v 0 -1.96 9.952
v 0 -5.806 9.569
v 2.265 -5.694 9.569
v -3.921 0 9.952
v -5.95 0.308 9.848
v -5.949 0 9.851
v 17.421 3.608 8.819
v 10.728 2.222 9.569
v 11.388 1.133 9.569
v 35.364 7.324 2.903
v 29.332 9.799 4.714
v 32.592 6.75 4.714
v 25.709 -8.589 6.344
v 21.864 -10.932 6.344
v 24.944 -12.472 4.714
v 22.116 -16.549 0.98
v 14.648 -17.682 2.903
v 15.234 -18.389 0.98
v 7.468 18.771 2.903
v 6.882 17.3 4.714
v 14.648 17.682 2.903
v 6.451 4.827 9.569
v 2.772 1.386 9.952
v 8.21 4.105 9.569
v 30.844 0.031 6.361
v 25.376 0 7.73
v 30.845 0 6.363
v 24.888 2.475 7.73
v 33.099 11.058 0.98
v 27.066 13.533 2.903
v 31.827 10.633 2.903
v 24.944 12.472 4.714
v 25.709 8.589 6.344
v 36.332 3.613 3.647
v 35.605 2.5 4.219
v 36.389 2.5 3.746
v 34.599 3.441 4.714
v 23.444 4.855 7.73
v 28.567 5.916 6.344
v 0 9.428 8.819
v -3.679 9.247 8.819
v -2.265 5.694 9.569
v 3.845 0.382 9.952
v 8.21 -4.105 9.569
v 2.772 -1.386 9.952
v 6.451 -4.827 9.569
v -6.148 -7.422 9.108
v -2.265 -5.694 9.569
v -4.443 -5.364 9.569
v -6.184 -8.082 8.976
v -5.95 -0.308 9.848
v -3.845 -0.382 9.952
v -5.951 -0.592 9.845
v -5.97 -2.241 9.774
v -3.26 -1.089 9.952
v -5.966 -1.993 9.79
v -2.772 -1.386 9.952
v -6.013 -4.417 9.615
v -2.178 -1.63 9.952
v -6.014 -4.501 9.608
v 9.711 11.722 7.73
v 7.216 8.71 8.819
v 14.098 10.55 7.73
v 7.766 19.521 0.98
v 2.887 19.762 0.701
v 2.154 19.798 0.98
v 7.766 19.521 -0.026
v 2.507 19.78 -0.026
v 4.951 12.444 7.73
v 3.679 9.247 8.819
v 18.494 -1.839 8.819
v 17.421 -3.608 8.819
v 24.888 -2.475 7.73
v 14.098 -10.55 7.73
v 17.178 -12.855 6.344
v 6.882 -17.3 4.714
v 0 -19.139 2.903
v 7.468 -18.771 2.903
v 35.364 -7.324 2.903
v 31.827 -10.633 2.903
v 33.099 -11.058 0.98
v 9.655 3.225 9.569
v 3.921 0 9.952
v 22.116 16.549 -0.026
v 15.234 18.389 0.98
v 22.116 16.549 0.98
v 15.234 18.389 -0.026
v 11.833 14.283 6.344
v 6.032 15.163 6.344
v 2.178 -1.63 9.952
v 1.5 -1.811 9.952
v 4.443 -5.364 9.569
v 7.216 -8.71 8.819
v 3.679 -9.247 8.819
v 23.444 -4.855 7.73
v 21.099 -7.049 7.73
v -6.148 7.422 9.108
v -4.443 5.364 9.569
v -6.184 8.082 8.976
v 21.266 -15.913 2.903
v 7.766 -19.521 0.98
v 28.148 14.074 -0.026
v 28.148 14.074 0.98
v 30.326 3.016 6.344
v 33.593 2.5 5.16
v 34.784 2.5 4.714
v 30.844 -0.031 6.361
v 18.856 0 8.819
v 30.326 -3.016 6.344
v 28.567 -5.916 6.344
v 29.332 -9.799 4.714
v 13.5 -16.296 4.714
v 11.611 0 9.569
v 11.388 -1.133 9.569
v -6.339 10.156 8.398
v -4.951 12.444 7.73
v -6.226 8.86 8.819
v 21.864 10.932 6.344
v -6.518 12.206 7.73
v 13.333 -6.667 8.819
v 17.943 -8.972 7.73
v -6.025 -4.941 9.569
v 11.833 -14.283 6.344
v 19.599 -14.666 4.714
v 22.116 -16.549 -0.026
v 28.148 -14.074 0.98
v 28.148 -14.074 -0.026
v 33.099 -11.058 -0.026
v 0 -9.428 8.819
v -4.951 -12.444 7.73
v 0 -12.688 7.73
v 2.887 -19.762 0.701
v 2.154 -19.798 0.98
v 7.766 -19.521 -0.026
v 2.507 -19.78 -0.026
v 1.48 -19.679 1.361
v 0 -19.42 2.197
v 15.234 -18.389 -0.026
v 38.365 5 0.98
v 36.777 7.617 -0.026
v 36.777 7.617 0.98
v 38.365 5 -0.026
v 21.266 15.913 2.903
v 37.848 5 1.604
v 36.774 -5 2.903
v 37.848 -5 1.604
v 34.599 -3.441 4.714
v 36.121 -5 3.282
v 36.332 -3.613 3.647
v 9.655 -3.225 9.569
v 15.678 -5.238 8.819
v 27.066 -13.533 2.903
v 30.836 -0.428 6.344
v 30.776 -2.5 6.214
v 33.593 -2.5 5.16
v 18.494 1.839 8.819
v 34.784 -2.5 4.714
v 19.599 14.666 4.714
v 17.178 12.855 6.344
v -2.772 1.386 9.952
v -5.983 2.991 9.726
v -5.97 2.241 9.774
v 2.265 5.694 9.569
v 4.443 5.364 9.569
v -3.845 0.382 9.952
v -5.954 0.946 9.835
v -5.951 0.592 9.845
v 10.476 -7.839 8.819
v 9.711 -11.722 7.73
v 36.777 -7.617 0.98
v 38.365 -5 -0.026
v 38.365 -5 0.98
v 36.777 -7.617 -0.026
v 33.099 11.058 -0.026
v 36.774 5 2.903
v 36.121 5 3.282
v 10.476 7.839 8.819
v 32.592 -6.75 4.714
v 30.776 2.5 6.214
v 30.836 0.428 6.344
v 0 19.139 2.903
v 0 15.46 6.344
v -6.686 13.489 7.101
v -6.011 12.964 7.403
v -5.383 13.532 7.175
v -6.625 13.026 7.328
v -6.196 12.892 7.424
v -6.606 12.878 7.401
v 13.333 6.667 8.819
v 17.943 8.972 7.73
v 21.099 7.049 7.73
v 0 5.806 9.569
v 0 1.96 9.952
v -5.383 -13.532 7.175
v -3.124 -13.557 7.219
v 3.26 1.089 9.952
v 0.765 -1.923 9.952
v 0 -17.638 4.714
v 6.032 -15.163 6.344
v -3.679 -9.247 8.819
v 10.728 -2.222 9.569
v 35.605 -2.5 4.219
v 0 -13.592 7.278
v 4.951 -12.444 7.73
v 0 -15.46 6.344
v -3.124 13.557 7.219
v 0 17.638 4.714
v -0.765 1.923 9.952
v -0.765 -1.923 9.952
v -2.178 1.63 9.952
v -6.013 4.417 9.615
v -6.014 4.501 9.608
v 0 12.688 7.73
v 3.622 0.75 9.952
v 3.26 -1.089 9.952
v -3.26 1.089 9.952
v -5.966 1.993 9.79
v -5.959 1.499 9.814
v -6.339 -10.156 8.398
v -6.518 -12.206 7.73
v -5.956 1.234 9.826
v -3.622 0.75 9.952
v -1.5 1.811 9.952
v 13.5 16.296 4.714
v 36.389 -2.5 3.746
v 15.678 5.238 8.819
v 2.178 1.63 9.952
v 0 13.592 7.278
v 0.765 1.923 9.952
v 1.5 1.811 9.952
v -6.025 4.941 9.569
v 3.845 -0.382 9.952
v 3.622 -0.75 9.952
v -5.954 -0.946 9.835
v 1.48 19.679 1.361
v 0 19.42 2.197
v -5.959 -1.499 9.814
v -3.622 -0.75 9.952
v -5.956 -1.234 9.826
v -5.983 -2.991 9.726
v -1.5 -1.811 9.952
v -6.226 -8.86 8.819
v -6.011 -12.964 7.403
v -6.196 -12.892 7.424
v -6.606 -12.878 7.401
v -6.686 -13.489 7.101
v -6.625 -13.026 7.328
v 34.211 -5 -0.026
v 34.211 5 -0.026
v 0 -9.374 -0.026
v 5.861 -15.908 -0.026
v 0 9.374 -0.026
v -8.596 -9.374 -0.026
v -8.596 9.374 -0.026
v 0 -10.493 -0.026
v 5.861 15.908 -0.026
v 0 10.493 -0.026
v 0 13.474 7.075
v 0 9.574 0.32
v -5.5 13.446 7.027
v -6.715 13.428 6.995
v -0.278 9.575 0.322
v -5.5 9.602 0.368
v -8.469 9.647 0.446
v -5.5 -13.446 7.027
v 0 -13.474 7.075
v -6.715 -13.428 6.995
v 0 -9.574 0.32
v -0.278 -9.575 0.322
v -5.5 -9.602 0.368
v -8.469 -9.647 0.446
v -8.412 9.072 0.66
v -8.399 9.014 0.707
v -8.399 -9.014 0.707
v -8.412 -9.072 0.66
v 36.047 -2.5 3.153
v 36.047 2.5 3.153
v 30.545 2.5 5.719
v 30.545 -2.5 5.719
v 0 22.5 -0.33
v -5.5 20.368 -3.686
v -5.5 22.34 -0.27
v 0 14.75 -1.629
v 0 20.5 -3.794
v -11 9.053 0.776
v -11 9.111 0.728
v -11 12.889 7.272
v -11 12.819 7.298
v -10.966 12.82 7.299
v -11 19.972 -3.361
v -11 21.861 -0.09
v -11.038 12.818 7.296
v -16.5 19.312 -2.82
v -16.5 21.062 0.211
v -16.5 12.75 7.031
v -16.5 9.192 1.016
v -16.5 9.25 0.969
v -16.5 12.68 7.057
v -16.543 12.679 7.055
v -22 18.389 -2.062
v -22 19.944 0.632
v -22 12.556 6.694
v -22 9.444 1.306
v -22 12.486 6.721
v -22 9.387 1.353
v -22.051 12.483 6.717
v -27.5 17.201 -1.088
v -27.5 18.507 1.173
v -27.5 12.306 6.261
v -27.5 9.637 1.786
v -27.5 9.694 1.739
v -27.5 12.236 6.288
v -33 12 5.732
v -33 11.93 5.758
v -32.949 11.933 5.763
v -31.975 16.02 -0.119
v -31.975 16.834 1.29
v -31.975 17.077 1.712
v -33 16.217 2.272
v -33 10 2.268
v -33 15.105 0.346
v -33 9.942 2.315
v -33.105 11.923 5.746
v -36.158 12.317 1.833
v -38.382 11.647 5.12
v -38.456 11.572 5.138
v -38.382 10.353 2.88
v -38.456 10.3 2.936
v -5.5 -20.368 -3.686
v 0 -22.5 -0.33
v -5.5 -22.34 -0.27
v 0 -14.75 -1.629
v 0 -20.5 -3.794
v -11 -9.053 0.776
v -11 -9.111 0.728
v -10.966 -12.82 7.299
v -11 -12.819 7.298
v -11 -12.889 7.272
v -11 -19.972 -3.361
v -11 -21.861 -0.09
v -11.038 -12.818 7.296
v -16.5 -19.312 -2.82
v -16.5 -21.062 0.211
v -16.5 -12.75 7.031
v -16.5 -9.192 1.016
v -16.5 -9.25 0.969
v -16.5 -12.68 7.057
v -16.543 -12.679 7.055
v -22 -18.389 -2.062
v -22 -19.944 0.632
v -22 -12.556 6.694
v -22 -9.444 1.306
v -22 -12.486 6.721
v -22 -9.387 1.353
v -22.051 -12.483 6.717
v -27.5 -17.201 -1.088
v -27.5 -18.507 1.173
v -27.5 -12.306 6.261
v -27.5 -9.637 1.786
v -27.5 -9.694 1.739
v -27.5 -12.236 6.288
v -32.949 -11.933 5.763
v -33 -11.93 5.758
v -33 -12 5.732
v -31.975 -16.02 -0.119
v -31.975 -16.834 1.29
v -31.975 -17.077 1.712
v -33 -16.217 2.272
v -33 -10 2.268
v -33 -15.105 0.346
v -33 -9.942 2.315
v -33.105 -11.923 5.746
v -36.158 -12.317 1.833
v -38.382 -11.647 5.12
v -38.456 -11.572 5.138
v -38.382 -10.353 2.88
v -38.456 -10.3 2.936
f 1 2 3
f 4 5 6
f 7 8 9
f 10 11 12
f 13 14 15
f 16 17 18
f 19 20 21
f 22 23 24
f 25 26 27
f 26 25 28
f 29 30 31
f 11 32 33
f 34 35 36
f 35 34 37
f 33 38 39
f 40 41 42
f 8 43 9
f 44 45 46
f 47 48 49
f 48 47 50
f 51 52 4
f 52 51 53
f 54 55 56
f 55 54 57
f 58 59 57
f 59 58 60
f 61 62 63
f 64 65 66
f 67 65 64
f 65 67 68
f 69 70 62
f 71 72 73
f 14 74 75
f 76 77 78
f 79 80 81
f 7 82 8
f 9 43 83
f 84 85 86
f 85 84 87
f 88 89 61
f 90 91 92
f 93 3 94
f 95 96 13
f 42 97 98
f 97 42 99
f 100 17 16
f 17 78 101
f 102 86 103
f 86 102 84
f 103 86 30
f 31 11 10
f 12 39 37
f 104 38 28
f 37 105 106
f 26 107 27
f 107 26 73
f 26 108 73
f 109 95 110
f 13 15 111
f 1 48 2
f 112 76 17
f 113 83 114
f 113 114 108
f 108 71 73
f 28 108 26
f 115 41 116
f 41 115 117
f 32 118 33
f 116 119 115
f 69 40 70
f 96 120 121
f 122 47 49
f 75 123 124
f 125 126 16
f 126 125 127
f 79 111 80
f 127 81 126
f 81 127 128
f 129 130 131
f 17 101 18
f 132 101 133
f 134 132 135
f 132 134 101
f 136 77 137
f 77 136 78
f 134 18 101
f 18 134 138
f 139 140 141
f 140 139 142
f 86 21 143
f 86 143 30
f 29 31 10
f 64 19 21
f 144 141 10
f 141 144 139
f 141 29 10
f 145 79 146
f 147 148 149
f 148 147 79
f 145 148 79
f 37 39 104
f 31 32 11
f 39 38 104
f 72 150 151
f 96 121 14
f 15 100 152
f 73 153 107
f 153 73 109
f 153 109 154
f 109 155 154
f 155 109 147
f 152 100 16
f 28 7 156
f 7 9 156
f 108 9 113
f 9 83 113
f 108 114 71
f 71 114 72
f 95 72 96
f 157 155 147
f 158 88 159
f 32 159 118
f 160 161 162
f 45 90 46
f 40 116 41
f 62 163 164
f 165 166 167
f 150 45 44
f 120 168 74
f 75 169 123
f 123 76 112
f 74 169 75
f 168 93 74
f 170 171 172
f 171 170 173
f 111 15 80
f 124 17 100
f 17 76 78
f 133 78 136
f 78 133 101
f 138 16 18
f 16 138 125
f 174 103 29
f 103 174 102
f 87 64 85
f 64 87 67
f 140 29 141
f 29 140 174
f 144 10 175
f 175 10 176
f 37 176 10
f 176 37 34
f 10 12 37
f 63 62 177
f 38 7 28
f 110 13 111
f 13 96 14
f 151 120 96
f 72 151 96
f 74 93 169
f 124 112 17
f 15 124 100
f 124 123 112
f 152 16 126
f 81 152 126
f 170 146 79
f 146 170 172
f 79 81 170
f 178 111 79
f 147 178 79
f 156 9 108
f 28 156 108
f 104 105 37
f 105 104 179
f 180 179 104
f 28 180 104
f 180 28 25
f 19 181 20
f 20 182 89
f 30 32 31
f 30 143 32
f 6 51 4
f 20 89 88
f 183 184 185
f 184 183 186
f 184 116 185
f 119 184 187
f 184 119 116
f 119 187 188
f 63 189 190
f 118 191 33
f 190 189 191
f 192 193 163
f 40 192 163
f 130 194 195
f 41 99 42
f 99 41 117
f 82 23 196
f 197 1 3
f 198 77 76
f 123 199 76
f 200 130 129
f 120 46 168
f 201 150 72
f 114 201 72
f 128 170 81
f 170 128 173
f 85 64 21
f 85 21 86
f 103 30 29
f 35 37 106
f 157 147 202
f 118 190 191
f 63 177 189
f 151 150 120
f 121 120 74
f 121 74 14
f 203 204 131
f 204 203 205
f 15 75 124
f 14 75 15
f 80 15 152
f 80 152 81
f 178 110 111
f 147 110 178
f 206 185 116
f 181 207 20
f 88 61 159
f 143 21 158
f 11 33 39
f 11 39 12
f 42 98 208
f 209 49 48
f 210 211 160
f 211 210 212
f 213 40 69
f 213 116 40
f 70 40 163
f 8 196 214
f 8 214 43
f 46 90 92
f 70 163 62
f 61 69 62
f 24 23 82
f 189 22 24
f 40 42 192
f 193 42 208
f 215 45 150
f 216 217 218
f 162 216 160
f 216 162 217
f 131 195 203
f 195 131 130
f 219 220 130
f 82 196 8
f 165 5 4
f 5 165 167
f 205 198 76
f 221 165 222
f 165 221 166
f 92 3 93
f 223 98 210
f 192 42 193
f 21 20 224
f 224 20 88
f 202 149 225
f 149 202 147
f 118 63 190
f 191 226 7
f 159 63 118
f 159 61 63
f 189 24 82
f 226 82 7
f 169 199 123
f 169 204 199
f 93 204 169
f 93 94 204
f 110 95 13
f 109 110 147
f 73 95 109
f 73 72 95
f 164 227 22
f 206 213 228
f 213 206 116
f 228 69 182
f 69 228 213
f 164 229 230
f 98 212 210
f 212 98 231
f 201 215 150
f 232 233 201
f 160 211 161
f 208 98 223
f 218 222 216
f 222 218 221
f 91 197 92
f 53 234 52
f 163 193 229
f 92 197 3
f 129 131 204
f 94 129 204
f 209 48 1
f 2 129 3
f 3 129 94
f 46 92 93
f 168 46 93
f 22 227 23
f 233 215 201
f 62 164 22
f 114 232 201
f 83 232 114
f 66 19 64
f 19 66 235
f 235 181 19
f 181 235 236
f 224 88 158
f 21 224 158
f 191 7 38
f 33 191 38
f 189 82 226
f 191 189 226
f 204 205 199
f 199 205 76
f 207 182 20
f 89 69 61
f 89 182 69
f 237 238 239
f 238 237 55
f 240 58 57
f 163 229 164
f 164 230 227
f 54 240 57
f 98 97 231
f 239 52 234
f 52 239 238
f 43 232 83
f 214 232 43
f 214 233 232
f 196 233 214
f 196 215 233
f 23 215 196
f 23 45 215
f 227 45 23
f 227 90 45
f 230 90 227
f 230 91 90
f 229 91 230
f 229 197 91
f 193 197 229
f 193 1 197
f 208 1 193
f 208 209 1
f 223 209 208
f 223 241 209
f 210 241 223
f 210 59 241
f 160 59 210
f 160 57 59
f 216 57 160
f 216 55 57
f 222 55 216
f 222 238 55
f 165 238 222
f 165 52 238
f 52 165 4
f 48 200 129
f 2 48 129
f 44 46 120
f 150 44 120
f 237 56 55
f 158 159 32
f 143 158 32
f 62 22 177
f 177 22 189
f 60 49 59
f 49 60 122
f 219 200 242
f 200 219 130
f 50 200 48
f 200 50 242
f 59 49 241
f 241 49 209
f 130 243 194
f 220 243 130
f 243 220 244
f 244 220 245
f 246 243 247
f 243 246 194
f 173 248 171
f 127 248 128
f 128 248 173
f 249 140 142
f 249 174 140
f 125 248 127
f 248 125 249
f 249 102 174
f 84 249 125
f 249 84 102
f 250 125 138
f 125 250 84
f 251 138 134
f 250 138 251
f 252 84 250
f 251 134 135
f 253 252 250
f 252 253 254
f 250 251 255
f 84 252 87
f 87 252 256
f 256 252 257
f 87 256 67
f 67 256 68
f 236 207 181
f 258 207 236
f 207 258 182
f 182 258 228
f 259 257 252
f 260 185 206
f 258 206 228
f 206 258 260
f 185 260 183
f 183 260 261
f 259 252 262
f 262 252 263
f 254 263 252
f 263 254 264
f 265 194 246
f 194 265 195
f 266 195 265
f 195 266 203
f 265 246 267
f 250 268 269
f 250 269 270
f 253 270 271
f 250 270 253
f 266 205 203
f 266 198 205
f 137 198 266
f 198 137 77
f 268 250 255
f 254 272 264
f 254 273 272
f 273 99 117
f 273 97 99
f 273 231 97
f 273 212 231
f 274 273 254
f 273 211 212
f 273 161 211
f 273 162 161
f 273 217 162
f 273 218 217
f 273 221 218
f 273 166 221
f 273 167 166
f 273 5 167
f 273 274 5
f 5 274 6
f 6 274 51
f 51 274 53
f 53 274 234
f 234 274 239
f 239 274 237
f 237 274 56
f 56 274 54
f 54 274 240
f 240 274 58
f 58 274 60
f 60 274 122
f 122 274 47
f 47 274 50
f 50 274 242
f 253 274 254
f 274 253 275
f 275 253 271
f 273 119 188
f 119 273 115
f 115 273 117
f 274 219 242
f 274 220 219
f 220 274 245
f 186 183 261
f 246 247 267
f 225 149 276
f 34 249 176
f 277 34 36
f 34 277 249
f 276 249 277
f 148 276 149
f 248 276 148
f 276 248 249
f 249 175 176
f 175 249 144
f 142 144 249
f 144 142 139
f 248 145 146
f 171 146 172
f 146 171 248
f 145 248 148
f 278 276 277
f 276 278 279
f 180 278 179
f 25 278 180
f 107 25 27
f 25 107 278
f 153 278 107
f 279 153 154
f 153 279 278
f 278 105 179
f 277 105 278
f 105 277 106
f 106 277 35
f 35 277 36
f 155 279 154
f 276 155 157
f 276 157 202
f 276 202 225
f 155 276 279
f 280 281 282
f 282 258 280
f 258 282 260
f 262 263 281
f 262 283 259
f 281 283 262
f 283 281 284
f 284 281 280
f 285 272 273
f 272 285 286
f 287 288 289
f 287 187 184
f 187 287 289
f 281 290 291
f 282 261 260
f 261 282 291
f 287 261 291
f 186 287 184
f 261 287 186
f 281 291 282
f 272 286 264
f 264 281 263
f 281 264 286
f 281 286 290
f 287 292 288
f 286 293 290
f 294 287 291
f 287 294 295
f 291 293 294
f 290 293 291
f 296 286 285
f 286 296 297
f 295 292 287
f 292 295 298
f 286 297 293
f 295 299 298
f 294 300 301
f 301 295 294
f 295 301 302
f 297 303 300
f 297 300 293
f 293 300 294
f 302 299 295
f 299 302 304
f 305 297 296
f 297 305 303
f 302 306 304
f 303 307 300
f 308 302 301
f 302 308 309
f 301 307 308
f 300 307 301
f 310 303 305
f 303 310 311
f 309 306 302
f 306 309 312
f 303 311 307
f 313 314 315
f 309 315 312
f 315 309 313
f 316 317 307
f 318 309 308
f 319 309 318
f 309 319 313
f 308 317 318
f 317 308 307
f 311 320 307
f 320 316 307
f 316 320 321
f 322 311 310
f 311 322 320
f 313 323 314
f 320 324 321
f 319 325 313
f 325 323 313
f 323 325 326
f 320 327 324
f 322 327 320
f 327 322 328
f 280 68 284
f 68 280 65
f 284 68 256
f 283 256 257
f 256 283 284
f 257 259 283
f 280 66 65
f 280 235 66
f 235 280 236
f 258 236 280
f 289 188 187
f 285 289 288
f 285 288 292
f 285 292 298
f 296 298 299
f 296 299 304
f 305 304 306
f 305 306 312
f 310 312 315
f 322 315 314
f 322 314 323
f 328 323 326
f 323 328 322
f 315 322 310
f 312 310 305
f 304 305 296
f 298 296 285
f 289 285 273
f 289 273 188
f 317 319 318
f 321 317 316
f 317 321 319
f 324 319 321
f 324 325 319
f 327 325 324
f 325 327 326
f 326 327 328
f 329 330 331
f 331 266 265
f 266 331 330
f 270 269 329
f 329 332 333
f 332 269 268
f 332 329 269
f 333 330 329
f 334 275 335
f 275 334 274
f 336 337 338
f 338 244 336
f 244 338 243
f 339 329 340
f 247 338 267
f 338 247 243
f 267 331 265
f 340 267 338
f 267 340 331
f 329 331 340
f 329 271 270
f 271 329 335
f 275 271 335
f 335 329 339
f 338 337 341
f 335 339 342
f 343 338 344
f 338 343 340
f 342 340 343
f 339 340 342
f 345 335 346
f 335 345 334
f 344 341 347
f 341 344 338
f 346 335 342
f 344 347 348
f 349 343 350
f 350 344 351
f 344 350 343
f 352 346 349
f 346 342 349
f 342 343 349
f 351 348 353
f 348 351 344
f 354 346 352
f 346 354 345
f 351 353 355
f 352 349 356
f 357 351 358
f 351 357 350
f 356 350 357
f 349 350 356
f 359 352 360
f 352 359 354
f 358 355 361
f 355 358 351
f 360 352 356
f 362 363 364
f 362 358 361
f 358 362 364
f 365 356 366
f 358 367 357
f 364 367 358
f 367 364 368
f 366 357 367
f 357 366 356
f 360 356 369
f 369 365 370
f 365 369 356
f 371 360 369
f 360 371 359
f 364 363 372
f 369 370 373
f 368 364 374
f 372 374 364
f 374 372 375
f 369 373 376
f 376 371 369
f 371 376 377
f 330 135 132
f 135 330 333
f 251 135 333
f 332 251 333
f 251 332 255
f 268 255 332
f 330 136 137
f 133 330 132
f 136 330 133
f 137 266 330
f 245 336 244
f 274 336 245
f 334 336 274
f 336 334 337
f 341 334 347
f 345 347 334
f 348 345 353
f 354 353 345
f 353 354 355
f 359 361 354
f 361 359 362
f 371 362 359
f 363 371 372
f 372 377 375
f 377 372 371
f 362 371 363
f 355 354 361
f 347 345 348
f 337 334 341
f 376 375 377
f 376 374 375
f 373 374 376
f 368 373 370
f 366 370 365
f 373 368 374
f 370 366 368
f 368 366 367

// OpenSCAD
// file: icp.scad
use <../lib/util.scad>;

module icp_saucer_large() {
    difference() {
        util_saucer(80,40,10);

        translate([-50,0,0])
            rotate([0,15,0])
                cube(80,center=true);

        util_mirrored([0,1,0])
            translate([-40,55,-1])
                rotate([-30,0,0])
                    cube(80,center=true);
            
        translate([40,0,0])
            rotate([0,30,0])
                cube(10,center=true);

        translate([35,0,6.4])
            rotate([0,-65,0])
                cube([5,5,7.5],center=true);

    }
}

module tactical_shuttle() {
    difference() {
        util_saucer(9,9,2.25);

        translate([3,0,2])
            rotate([0,-66,0])
                cube([1.5,1.5,3],center=true);
    }

    translate([-3.5,0,1])
        scale([1,1,.5])
            rotate([90,0,0])
                cylinder(5,2,2,$fn=6,center=true);

    util_mirrored([0,1,0])
        translate([-4,1.5,1])
            rotate([90,0,0])
                util_nacelle(7.5,1,4,curved=true,up=false);
};


module runabout_old() {
    difference() {
        util_saucer(18,15,3);

        translate([6,0,3.3])
            rotate([0,-72,0])
                cube([3,3,5],center=true);
    }

    translate([-7.5,0,0])
        scale([1,1,.4])
            rotate([90,0,0])
                cylinder(9,4,4,$fn=6,center=true);

    translate([-7.5,0,1])
        mirror([0,0,1])
            util_nacelle_bar(15,2.5,2.5,.5);

    util_mirrored([0,1,0])
        translate([-3,6.5,-2])
            scale([1,1,.5])
                union() {
                    rotate([0,90,0])
                        cylinder(14,1.5,1.5,center=true,$fn=16);

                    util_mirrored([1,0,0])
                        translate([7,0,0])
                            sphere(1.5,$fn=16);
                }
}

module yacht() {
    difference() {
        util_saucer(27,27,3.5);

        translate([10,0,3])
            rotate([0,-75,0])
                cube([3,3,5],center=true);
    }

    translate([-13,0,0]) {

        difference(){
            mirror([0,0,1])
                util_saucer(16,8,2.5);

            translate([-4,0,-2.5])
                scale([1.5,1,1])
                    rotate([90,0,0])
                        cylinder(10,2.5,2.5,center=true,$fn=16);
            
            translate([-9,0,-5])
                cube(10,center=true);
            
            translate([7.5,0,-1.25])
                rotate([0,90,0])
                    cylinder(4,.5,1,$fn=16, center=true);
        }

        util_saucer(16,8,1.5);
    }

    translate([-11,0,0])
        difference() {
            util_nacelle_bar(25,2.5,27,.25);
            
            translate([-29.5,0,0])
                cylinder(40,20,20,center=true);

            util_mirrored([0,1,0])
                translate([11,25,0])
                    cylinder(40,25,25,center=true);
        }

    util_mirrored([0,1,0])
        translate([-14,11,2.5])
            util_nacelle(20,4,2,curved=true);
}


module science_runabout() {
    difference() {
        util_saucer(36,36,4);

        translate([15,0,3])
            rotate([0,-75,0])
                cube([3,3,5],center=true);
    }

    translate([-13,0,0]) difference() {
        scale([1.5,1,1.2])
            rotate([90,0,0])
                cylinder(15,4,4,$fn=6,center=true);
        
        translate([0,0,-10]) cube(20,center=true);
    }
    
    translate([-15,0,1])
        util_nacelle_bar(28,2.5,3,.5);
    
    util_mirrored([0,1,0])
        translate([-8,12,3])
            util_nacelle(24,4,2,curved=true);
}


module attack() {
    difference() {
        util_saucer(45,45,5);

        translate([20,0,3])
            rotate([0,-70,0])
                cube([3,3,5],center=true);
        
    }

    difference() {
        scale([1,1,2.5])
            util_body(45,45,1.5,6);
    
        translate([22.5,0,-1.2])
            sphere(1,$fn=16);
    }

    util_mirrored([0,1,0])
        translate([-12,12,-2.5])
            rotate([75,0,0])
                util_nacelle(40,5,12,curved=true,up=false);

    difference() {
        translate([-10,0,0])
            mirror([0,0,1])
                util_nacelle_bar(35,3.2,20,2);

        util_mirrored([0,1,0])
            translate([2,18,0])
                cylinder(15,15,15,center=true);
        
        translate([-38,0,0]) cylinder(15,22.5,22.5,center=true);
    }
}

module scout_old() {
    difference() {
        util_saucer(54,54,5);

        translate([24,0,3])
            rotate([0,-70,0])
                cube([3,3,5],center=true);
    }

    translate([-36,0,0]) 
    scale([1.33,.66,1]) {
        difference() {
            cylinder(8,8,32,center=true,$fn=4);
            translate([-35,0,0])
                cube(60,center=true);
        }

        difference() {
            cylinder(8,54,32,center=true,$fn=4);
            translate([-35,0,0])
                cube([60,200,60],center=true);
            translate([35,0,0])
                cube([60,200,60],center=true);
            translate([0,0,-60])
                cube(120,center=true);
        }
    }

    util_mirrored([0,1,0])
        translate([-24,24,1.5])
            rotate([-110,0,0])
                util_nacelle(45,4,8,curved=true);

    translate([0,0,.1])
    util_nacelle(42,32,6.7,curved=true);
}
// file: ../lib/util.scad
fn1 = 32;
fn2 = 16;

module util_half_sphere(radius, fn=fn1) {
    difference() {
        sphere(radius, $fn=fn);
        translate([0,0,-(radius+radius/19)])
            cube(2*radius+radius/10, center=true);
    }
}

function gcd(a,b) = a == b ? a : a > b ? gcd(a-b, b) : gcd(a, b-a);

module util_saucer(length, width, height, fn=fn1) {
    rad = gcd(length,gcd(width,height));
    //rad = 10;
    scale([length/(2*rad), width/(2*rad), height/rad])
        util_half_sphere(rad, fn);
}

module util_half_cylinder(length, radius, inner_fn=fn2, outer_fn=fn1) {
    maxval = max(length, 2*radius);
    intersection() {
        difference() {
            rotate([0,90,0])
                translate([0,0,-(length/2 + length/20)])
                    cylinder(length+length/10, radius, radius, $fn=inner_fn);
            
            translate([0,0,(maxval/2 + maxval/19)])
                cube(maxval+maxval/10, center=true);
        }
        
        translate([0,0,-(radius+radius/20)])
            cylinder(radius + radius/10, length/2, length/2, $fn=outer_fn);
    }
}

module util_body(length, width, height, upper_height, fn=fn1) {
    rad = gcd(length, gcd(width, upper_height));
    
    scale(.995) scale([length/(2*rad), width/(2*rad), 1])
        util_half_cylinder(2*rad, height, outer_fn=fn);
}

module util_graded_cylinder(height, radius_start, radius_end, grades=1, fn=fn1) {
    height_grade = height / grades;
    radius_grade = (radius_start - radius_end) / (grades * grades);
    for (i = [0 : 1 : grades]) {
        translate([0,0,i*height_grade])
            cylinder(height_grade, 
                     radius_start - i*radius_grade * i,
                     radius_start - (i+1) * radius_grade * (i+1),
                     $fn = fn);
    }
}

module util_nacelle(length, width, height, curved=false, up=true, front_bulge=false) {
    rad = min(width, height/2);
    grads = curved ? 6 : 1;
    scale_factor = front_bulge ? 1.1 : 1;
    direction = up ? -1 : 1;
    difference() {
        scale([1, width/ (2*rad), height/rad])
            difference() {
                union() {
                    rotate([0,-90,0])
                        rotate(30)
                            util_graded_cylinder(length-rad, rad, rad/2, grads, 6);
                    scale(scale_factor) 
                        rotate([0,90,0]) rotate(90) sphere(rad, $fn=6);
                }
                
                translate([-length/2, 0, direction * (height/2 + height/19)])
                    cube([length+length, width+width, height+height/10], center=true);
            }
        
        translate([-length-(curved?length/3:0), 0, -length/3])
            rotate([0,-45,0])
                cube(length, center=true);
    }
}

module util_mirrored(v) {
    children();
    mirror(v) children();
}

module util_ring(outer, inner, height) {
    difference() {
        translate([0,0,-height/2])
            cylinder(height, outer, outer);
        translate([0,0,-(height/2 + height/19)])
            cylinder(height+height/10, inner, inner);
    }
}

module util_star(radius, thick, num, half=false) {
    angle = 360/num;
    offset = half? angle/2 : 0;
    for (i = [0: 1: num]) {
        rotate(i* angle + offset)
            translate([radius/2,0,0])
                cube([radius, thick, thick], center=true);
    }
}

module util_ring_star(radius, thick, num, inner, half=false) {
    outer=inner+thick;
    avg = (inner + outer)/2;
    union() {
        difference() {
            util_star(radius, thick, num, half);
            cylinder(2*thick, outer, outer, $fn=num, center=true);
        }
        util_ring(outer, inner, thick);
    }
}

module util_hangar_disk(height, lower, upper, num, fn=fn1) {
    difference() {
            cylinder(height, lower, upper, $fn=fn, center=true);
        difference() {
            scale([1,1,22])
                util_star(1.1*upper, height/20, num, half=true);
            scale(.95)
                cylinder(height, lower, upper, $fn=fn, center=true);
        }
    }
}

module util_hangar_form(length, width, height, num, inner=0) {
    l = 0.6* max(length, width);
    h = 2.5* height;
    thick = min(height/20,1);
    inner = inner == 0 ? l/3 : inner;
    difference() {
        children();
        scale([1,1,h/thick]) 
            util_ring_star(l, thick, num, inner, half=true);
    }
    scale(.95) children();
}

module util_nacelle_bar(span, height, width, thickness) {
    rad = (span*span/(8*height) + height/2);
    outer = rad + thickness/2;
    inner = rad - thickness/2;
    difference(){
        translate([0,0,outer])
            rotate([0,90,0])
                util_ring(outer, inner, width);
    
        translate([0,0,1.1*outer+height])
            cube(2.2*outer, center=true);
    }
}

module util_q_sphere(rad, quadrant, faces) {
    x_sign = quadrant == 1 ? 1 :
             quadrant == 2 ? -1 :
             quadrant == 3 ? -1 :
             quadrant == 4 ? 1 : 0;
    z_sign = quadrant == 1 ? 1 :
             quadrant == 2 ? 1 :
             quadrant == 3 ? -1 :
             quadrant == 4 ? -1 : 0;
    
    difference() {
        sphere(rad, $fn=faces);

        translate([x_sign*(-1.1*rad - .01),0,0])
        cube(2.2*rad, center=true);

        translate([0,0,z_sign*(-1.1*rad - .01)])
        cube(2.2*rad, center=true);
    }
}

module util_ovoid(front_rad, back_rad, width, upper_rad, lower_rad, faces=32) {
    half_width = width/2;
    largest=max(front_rad, back_rad, half_width, upper_rad, lower_rad);
    smallest=min(front_rad, back_rad, half_width, upper_rad, lower_rad);
    
    union() {
        scale([front_rad/smallest, half_width/smallest, upper_rad/smallest])
        util_q_sphere(smallest, 1, faces);
        
        scale([front_rad/smallest, half_width/smallest, lower_rad/smallest])
        util_q_sphere(smallest, 4, faces);
        
        scale([back_rad/smallest, half_width/smallest, lower_rad/smallest])
        util_q_sphere(smallest, 3, faces);
        
        scale([back_rad/smallest, half_width/smallest, upper_rad/smallest])
        util_q_sphere(smallest, 2, faces);
    }
}
// main file
use <../lib/util.scad>;
use <icp.scad>;


module model2() {

    icp_saucer_large();
    util_mirrored([0,1,0]) 
        translate([-0,11,4])
            rotate([60,0,0])
                util_nacelle(40,8,14,curved=true,up=false);

}

module attack() {
    model2();
}

attack();
